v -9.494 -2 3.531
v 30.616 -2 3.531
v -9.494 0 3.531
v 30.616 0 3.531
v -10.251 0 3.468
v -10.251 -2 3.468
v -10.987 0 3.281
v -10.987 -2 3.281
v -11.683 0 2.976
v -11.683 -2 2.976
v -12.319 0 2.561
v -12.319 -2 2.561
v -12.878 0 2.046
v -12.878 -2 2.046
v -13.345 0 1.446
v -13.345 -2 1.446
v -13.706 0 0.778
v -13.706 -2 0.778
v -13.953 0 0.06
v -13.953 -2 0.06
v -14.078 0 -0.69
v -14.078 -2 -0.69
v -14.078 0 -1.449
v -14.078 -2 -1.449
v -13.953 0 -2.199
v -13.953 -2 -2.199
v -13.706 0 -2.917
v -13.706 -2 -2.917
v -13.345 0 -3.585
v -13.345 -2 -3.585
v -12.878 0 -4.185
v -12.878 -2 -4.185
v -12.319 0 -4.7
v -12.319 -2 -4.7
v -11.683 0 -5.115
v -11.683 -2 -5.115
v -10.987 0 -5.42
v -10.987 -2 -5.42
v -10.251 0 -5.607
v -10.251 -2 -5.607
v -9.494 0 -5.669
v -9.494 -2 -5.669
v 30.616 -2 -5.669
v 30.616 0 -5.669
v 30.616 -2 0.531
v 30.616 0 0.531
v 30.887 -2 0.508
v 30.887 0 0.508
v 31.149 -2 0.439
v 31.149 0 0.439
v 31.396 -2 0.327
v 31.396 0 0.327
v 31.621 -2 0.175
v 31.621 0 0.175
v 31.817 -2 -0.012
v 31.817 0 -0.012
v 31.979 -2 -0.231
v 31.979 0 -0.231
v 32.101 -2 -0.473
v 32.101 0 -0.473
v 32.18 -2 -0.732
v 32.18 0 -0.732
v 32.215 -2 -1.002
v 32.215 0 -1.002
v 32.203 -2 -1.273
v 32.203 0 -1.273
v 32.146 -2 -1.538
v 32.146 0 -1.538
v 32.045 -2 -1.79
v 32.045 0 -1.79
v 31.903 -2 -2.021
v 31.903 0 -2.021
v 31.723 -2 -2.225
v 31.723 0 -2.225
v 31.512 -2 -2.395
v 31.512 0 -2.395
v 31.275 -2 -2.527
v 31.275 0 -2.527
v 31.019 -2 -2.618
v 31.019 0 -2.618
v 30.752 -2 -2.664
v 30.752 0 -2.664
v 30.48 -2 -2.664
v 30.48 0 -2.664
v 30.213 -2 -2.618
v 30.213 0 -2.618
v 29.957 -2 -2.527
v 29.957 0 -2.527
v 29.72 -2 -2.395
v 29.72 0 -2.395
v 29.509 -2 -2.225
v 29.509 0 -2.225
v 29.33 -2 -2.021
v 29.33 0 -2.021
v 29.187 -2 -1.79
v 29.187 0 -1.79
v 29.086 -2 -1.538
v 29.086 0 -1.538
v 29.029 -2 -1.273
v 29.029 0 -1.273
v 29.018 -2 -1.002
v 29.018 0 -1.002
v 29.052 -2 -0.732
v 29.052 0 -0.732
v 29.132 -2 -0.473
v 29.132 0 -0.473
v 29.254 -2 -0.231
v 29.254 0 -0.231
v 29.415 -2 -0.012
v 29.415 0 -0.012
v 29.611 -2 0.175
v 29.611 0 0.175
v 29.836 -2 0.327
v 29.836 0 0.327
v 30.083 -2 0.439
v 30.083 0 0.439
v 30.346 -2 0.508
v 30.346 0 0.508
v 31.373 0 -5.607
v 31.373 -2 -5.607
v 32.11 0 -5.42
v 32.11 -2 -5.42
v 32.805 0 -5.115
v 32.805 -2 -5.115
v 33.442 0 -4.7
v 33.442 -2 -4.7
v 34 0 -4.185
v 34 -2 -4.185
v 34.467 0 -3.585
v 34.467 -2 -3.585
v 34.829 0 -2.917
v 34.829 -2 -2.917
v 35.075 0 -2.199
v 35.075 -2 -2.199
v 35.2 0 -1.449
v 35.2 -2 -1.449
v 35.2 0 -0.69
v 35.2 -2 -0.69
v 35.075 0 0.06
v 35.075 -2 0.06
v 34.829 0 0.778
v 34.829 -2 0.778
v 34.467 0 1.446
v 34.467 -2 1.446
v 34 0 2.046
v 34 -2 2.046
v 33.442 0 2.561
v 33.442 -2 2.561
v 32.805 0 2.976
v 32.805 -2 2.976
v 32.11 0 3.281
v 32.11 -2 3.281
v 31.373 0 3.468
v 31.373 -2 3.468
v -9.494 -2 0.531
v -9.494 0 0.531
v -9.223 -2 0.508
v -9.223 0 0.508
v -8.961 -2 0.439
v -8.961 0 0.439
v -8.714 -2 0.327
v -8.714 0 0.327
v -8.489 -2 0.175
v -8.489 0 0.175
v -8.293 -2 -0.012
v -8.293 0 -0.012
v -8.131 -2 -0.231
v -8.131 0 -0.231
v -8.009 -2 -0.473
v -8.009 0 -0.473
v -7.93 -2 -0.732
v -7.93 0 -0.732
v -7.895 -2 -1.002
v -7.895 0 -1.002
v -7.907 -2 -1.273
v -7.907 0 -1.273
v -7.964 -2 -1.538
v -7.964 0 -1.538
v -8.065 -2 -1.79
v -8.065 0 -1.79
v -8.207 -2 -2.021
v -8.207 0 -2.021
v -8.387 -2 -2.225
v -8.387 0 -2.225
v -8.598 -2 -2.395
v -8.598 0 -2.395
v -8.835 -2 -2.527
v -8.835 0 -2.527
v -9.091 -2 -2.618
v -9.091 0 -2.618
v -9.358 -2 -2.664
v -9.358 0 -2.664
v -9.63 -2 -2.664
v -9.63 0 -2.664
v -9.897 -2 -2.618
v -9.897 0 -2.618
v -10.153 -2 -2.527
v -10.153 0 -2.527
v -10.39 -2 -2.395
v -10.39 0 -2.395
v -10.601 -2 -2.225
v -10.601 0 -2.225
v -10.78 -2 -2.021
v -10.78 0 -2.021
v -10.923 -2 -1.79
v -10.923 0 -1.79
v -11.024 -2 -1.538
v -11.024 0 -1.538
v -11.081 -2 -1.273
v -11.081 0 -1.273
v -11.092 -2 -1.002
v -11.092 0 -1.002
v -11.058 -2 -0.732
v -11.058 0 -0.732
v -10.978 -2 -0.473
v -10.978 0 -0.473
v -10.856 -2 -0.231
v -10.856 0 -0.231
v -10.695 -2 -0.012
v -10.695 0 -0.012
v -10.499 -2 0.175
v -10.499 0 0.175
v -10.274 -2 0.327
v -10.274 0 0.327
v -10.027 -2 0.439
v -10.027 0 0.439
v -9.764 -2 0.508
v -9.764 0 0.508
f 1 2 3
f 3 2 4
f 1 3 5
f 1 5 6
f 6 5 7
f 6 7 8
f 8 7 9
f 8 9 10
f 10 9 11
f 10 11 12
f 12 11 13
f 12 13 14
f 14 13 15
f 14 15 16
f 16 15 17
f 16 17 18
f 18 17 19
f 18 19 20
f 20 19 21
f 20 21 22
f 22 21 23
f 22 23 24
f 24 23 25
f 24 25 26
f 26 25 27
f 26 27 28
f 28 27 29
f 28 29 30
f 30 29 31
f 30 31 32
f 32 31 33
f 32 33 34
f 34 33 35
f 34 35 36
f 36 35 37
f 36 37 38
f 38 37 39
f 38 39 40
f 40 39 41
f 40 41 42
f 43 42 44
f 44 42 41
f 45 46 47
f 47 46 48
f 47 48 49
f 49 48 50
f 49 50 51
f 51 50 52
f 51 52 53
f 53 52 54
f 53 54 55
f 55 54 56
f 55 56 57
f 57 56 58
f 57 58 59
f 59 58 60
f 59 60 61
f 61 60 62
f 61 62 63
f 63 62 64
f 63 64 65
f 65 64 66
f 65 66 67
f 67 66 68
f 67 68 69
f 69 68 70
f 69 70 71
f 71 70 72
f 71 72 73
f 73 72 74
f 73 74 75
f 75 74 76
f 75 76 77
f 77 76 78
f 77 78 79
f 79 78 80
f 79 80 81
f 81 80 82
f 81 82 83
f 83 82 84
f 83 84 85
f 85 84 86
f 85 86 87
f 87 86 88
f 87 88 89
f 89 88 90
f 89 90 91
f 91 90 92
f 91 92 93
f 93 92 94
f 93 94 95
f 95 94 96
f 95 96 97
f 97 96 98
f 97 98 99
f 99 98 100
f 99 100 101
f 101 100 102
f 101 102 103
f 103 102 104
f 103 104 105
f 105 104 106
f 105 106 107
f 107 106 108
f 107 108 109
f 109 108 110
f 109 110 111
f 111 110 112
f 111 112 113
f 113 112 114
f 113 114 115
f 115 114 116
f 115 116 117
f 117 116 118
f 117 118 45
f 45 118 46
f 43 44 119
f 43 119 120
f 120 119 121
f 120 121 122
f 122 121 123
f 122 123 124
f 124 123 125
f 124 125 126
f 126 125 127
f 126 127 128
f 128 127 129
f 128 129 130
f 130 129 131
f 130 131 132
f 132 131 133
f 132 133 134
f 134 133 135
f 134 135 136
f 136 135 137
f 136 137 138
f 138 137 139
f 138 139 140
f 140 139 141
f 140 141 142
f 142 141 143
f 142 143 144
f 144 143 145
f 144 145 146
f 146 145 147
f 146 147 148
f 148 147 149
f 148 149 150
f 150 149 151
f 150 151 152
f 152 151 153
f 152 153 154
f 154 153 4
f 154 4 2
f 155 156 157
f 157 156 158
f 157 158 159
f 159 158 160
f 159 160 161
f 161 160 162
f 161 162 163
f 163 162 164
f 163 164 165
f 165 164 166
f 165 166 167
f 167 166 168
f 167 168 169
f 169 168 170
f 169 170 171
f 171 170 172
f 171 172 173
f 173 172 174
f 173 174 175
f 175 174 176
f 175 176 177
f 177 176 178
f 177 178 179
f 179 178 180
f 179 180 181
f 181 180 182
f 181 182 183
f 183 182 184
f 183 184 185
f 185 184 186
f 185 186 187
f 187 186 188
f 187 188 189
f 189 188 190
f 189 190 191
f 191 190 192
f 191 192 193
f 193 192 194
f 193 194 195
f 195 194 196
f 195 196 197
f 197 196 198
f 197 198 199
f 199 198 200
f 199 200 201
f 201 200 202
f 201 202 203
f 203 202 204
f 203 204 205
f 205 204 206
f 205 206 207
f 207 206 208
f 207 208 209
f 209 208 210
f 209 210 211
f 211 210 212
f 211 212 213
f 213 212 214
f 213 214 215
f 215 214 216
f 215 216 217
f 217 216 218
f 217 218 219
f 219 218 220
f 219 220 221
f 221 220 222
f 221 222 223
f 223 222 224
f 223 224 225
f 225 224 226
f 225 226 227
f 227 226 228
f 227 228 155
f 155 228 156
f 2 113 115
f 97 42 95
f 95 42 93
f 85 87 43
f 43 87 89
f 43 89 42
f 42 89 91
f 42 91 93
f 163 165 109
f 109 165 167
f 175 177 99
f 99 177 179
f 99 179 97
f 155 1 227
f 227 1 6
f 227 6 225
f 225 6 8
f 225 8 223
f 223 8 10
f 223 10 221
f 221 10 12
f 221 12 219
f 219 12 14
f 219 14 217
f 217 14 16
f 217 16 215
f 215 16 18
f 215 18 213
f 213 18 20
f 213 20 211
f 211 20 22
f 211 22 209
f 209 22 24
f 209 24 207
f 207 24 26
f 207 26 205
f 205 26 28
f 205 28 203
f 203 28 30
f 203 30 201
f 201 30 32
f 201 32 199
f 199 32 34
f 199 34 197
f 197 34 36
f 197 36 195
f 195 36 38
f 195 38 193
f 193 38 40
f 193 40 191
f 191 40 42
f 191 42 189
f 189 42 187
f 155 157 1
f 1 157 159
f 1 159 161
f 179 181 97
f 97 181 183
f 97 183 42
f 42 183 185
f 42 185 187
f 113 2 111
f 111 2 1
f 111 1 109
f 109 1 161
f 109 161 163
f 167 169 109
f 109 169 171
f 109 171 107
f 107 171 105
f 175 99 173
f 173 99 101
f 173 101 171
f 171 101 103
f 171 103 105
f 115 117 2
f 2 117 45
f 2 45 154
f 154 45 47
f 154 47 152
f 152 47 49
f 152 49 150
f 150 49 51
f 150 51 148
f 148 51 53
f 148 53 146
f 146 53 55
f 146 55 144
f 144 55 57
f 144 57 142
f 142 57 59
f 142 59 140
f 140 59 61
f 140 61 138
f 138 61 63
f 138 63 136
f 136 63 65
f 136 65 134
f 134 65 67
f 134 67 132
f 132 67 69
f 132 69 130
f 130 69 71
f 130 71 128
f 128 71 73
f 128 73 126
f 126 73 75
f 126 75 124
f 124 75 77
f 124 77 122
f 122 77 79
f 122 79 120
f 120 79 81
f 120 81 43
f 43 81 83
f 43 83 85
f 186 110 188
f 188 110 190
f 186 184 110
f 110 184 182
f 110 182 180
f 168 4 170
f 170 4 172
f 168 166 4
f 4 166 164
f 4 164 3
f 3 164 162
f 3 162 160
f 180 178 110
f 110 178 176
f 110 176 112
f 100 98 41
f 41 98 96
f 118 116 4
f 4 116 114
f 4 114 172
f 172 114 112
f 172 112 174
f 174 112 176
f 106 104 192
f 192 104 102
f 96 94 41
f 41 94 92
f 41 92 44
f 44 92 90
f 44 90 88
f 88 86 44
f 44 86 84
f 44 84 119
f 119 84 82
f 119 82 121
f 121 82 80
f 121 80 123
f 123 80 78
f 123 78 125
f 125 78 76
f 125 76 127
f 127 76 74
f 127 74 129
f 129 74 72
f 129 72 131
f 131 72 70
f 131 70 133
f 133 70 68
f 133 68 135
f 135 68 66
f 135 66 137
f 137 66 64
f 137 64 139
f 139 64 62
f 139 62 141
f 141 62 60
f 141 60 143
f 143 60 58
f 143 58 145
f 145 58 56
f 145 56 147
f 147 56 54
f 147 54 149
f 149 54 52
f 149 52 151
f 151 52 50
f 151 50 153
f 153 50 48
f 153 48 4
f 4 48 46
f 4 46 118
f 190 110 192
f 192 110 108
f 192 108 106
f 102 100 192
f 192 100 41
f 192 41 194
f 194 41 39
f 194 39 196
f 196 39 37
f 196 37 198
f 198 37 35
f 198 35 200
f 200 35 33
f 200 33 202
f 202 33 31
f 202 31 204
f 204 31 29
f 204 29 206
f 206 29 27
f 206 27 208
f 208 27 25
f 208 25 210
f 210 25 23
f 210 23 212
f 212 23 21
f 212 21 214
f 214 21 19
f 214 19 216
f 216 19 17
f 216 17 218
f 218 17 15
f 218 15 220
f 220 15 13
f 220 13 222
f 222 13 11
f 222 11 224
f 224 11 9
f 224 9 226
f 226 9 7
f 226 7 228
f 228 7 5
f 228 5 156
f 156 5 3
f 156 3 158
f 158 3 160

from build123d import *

# Parameters (mm, degrees)
BOSS_EXTRUDE1_DEPTH = 2


with BuildPart() as part:
    # Sketch1 → Boss-Extrude1 (new body)
    with BuildSketch(Plane(origin=(0, 0, 0), x_dir=(1, 0, 0), z_dir=(0, 1, 0))):
        with BuildLine():
            ThreePointArc((-9.493876204, 2.669468268), (-8.362505354, 2.200839118), (-7.893876204, 1.069468268))
            Line((-7.893876204, 1.069468268), (-4.893876204, 1.069468268))
            ThreePointArc((-4.893876204, 1.069468268), (-6.24118501, 4.322159461), (-9.493876204, 5.669468268))
            Line((-9.493876204, 5.669468268), (-9.493876204, 2.669468268))
        make_face()
        with BuildLine():
            ThreePointArc((-9.493876204, -0.530531732), (-11.093876204, 1.069468268), (-9.493876204, 2.669468268))
            Line((-9.493876204, 2.669468268), (-9.493876204, 5.669468268))
            ThreePointArc((-9.493876204, 5.669468268), (-14.093876204, 1.069468268), (-9.493876204, -3.530531732))
            Line((-9.493876204, -3.530531732), (-9.493876204, -0.530531732))
        make_face()
        with BuildLine():
            Line((-4.893876204, 1.069468268), (-7.893876204, 1.069468268))
            ThreePointArc((-7.893876204, 1.069468268), (-8.362505354, -0.061902582), (-9.493876204, -0.530531732))
            Line((-9.493876204, -0.530531732), (-9.493876204, -3.530531732))
            ThreePointArc((-9.493876204, -3.530531732), (-6.24118501, -2.183222925), (-4.893876204, 1.069468268))
        make_face()
        with BuildLine():
            Line((26.016123796, 1.069468268), (-4.893876204, 1.069468268))
            ThreePointArc((-4.893876204, 1.069468268), (-6.24118501, -2.183222925), (-9.493876204, -3.530531732))
            Line((-9.493876204, -3.530531732), (30.616123796, -3.530531732))
            ThreePointArc((30.616123796, -3.530531732), (27.363432603, -2.183222925), (26.016123796, 1.069468268))
        make_face()
        with BuildLine():
            ThreePointArc((-9.493876204, 5.669468268), (-6.24118501, 4.322159461), (-4.893876204, 1.069468268))
            Line((-4.893876204, 1.069468268), (26.016123796, 1.069468268))
            ThreePointArc((26.016123796, 1.069468268), (27.363432603, 4.322159461), (30.616123796, 5.669468268))
            Line((30.616123796, 5.669468268), (-9.493876204, 5.669468268))
        make_face()
        with BuildLine():
            Line((29.016123796, 1.069468268), (26.016123796, 1.069468268))
            ThreePointArc((26.016123796, 1.069468268), (27.363432603, -2.183222925), (30.616123796, -3.530531732))
            Line((30.616123796, -3.530531732), (30.616123796, -0.530531732))
            ThreePointArc((30.616123796, -0.530531732), (29.484752947, -0.061902582), (29.016123796, 1.069468268))
        make_face()
        with BuildLine():
            ThreePointArc((30.616123796, 5.669468268), (27.363432603, 4.322159461), (26.016123796, 1.069468268))
            Line((26.016123796, 1.069468268), (29.016123796, 1.069468268))
            ThreePointArc((29.016123796, 1.069468268), (29.484752947, 2.200839118), (30.616123796, 2.669468268))
            Line((30.616123796, 2.669468268), (30.616123796, 5.669468268))
        make_face()
        with BuildLine():
            ThreePointArc((35.216123796, 1.069468268), (33.86881499, 4.322159461), (30.616123796, 5.669468268))
            Line((30.616123796, 5.669468268), (30.616123796, 2.669468268))
            ThreePointArc((30.616123796, 2.669468268), (31.747494646, 2.200839118), (32.216123796, 1.069468268))
            ThreePointArc((32.216123796, 1.069468268), (31.747494646, -0.061902582), (30.616123796, -0.530531732))
            Line((30.616123796, -0.530531732), (30.616123796, -3.530531732))
            ThreePointArc((30.616123796, -3.530531732), (33.86881499, -2.183222925), (35.216123796, 1.069468268))
        make_face()
    extrude(amount=-BOSS_EXTRUDE1_DEPTH)


solid = part.part
